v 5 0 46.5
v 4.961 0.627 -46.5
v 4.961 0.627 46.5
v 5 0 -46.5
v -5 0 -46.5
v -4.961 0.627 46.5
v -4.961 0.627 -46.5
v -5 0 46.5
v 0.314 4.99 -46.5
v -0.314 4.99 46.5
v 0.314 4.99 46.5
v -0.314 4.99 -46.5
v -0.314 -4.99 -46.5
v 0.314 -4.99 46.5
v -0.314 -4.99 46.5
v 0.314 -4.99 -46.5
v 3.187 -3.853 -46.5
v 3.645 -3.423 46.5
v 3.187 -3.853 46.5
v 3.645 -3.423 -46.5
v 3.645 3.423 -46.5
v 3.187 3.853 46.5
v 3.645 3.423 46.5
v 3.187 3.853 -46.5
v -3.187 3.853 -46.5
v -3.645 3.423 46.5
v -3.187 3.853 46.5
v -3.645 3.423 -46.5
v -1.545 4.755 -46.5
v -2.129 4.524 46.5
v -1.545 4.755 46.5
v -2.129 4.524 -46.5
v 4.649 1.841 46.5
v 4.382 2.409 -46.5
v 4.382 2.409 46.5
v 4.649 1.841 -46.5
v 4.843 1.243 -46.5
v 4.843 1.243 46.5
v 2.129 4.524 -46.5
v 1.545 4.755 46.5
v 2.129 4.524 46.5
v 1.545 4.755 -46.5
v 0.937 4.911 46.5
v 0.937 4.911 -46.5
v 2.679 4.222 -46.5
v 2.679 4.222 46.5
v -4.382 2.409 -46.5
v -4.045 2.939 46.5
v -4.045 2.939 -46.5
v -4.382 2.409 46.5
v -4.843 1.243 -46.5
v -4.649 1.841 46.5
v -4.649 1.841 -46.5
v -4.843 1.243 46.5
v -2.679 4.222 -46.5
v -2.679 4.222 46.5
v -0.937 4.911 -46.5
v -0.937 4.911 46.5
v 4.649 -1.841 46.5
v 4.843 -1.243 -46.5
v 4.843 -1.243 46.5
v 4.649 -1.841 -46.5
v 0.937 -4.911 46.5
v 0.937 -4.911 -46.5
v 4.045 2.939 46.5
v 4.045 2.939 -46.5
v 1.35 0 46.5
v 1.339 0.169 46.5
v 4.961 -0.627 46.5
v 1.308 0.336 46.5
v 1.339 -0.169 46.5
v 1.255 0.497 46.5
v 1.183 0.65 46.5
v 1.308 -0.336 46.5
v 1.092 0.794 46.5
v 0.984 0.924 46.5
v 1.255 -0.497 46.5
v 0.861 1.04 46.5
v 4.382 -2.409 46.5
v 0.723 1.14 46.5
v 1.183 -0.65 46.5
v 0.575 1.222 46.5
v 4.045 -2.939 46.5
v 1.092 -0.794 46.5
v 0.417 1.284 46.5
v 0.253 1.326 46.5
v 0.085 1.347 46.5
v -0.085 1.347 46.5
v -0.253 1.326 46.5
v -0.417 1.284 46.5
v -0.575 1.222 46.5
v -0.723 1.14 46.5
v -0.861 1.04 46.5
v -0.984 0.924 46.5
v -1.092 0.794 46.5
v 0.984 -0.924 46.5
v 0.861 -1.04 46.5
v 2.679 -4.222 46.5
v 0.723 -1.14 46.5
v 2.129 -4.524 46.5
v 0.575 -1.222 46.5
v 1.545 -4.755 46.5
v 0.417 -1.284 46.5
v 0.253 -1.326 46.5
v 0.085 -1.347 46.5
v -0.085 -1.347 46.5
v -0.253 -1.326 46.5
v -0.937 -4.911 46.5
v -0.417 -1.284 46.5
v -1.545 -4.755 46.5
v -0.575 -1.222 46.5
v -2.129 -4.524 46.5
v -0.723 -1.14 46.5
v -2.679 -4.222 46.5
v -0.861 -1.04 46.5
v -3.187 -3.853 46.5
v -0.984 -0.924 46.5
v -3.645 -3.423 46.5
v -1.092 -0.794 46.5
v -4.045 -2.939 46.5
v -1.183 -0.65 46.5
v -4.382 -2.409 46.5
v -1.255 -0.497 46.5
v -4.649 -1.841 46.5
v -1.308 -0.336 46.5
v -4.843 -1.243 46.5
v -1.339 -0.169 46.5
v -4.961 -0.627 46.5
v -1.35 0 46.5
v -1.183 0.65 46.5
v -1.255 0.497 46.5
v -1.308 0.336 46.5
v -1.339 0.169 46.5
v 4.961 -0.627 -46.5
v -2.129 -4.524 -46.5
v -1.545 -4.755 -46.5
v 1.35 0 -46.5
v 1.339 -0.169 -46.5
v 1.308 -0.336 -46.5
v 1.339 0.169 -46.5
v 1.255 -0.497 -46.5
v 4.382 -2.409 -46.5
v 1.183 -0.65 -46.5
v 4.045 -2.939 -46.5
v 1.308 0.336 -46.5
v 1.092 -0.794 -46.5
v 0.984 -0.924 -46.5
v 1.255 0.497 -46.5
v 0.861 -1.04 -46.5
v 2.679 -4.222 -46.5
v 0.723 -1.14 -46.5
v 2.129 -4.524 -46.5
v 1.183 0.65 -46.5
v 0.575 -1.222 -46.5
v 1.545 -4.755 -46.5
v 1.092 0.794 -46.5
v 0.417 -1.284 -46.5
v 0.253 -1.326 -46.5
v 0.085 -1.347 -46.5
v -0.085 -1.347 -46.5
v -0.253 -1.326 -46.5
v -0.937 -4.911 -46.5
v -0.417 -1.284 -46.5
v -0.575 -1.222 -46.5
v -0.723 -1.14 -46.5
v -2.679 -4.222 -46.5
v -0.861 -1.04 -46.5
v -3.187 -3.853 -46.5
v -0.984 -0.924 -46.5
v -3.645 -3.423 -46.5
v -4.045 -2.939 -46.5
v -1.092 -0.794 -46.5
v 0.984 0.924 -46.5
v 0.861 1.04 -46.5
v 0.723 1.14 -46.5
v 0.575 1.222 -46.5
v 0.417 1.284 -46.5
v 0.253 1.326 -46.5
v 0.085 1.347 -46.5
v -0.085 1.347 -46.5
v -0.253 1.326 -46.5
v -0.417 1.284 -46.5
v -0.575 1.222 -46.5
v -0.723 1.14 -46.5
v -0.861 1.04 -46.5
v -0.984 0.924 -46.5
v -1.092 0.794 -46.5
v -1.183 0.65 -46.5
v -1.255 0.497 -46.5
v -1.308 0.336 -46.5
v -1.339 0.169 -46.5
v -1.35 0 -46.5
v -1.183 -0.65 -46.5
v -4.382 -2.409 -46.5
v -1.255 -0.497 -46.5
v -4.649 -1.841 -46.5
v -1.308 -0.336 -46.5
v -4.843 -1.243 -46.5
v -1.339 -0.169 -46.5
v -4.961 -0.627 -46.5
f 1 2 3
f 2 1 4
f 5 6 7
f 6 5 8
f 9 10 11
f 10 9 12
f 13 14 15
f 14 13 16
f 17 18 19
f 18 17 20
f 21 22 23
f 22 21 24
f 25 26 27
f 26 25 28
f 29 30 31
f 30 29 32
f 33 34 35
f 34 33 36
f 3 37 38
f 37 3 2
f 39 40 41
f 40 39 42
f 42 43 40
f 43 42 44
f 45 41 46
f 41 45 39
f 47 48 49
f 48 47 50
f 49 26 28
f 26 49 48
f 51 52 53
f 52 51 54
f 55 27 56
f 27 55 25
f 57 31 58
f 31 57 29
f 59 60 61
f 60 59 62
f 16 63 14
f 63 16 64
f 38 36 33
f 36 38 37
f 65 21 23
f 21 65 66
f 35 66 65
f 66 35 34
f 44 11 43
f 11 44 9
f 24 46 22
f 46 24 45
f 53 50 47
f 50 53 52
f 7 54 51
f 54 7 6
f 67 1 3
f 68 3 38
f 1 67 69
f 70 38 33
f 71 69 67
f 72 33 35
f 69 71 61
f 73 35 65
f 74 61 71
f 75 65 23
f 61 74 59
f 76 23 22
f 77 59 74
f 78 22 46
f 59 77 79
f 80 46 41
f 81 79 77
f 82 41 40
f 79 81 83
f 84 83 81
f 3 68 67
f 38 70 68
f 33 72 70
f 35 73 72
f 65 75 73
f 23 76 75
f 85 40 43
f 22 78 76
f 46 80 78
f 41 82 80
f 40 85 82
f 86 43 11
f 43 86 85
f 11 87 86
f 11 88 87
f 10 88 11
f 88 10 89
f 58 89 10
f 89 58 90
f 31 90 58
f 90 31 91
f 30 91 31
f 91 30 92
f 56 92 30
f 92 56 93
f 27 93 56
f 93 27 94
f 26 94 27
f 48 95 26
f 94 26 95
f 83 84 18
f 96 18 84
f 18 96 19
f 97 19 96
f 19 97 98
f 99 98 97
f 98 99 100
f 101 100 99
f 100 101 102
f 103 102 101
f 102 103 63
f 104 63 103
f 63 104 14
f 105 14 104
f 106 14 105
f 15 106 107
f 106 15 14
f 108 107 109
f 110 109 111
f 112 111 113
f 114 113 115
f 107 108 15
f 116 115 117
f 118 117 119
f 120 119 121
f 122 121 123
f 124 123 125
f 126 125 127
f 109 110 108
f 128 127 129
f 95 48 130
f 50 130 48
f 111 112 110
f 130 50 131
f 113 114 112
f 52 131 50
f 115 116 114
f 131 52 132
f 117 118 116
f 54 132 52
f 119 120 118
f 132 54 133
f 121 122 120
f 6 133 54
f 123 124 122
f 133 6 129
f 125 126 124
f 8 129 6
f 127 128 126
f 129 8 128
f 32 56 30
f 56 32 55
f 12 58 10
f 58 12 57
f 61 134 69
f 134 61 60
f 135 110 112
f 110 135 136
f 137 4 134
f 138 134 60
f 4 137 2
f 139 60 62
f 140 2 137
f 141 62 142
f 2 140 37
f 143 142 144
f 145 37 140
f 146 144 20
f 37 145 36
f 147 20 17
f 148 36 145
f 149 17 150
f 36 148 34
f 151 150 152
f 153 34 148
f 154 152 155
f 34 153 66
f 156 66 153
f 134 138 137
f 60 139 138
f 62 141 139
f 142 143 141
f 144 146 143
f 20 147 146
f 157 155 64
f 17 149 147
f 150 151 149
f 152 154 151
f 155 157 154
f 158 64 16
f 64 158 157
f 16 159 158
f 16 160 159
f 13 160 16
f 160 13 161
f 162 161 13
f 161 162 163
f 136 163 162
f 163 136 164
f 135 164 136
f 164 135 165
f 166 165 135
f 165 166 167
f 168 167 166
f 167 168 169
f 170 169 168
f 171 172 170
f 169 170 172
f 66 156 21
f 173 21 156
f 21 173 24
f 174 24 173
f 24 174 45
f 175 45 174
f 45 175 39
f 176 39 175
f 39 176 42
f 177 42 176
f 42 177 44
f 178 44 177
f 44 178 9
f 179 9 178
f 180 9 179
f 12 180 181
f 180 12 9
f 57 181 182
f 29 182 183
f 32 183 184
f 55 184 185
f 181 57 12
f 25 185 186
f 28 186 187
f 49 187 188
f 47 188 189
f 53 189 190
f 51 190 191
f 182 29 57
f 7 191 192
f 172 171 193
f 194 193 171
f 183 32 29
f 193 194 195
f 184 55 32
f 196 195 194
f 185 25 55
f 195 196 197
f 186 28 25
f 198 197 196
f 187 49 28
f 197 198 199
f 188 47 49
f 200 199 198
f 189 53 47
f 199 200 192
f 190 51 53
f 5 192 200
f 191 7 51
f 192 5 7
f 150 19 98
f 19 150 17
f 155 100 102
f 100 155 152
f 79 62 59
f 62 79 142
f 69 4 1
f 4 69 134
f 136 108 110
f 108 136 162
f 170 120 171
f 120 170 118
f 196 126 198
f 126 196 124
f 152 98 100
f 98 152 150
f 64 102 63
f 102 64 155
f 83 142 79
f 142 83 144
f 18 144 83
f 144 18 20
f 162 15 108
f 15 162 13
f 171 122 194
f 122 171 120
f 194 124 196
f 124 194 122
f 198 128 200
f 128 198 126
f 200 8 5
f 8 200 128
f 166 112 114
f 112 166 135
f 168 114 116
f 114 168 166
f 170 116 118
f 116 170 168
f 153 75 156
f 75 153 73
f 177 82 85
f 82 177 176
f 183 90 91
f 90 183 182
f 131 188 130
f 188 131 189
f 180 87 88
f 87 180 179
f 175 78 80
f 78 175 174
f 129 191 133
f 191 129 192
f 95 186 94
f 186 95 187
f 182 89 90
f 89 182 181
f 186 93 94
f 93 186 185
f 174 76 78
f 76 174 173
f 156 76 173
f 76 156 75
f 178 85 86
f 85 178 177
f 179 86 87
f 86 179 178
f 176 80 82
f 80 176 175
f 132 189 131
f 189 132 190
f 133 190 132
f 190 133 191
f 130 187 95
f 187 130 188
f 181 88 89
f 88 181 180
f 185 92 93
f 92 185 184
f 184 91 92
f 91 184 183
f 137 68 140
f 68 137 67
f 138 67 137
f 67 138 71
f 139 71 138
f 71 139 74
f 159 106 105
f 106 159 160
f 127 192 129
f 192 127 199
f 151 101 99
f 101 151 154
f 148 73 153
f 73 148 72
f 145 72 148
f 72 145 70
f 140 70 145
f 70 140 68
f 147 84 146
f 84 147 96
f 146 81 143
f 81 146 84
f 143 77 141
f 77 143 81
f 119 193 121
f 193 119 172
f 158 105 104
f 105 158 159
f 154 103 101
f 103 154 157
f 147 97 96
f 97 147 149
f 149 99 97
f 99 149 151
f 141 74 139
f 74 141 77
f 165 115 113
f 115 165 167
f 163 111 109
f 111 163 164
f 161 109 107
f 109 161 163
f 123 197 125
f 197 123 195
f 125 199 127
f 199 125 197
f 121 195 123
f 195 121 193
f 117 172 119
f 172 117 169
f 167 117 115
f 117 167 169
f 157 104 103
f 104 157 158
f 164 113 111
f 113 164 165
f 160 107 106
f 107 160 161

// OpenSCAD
$fn = 50;


difference() {
	union() {
		translate(v = [0, 0, -46.5000000000]) {
			cylinder(h = 93, r = 5.0000000000);
		}
	}
	union() {
		translate(v = [0, 0, -100.0000000000]) {
			cylinder(h = 200, r = 1.3500000000);
		}
	}
}
